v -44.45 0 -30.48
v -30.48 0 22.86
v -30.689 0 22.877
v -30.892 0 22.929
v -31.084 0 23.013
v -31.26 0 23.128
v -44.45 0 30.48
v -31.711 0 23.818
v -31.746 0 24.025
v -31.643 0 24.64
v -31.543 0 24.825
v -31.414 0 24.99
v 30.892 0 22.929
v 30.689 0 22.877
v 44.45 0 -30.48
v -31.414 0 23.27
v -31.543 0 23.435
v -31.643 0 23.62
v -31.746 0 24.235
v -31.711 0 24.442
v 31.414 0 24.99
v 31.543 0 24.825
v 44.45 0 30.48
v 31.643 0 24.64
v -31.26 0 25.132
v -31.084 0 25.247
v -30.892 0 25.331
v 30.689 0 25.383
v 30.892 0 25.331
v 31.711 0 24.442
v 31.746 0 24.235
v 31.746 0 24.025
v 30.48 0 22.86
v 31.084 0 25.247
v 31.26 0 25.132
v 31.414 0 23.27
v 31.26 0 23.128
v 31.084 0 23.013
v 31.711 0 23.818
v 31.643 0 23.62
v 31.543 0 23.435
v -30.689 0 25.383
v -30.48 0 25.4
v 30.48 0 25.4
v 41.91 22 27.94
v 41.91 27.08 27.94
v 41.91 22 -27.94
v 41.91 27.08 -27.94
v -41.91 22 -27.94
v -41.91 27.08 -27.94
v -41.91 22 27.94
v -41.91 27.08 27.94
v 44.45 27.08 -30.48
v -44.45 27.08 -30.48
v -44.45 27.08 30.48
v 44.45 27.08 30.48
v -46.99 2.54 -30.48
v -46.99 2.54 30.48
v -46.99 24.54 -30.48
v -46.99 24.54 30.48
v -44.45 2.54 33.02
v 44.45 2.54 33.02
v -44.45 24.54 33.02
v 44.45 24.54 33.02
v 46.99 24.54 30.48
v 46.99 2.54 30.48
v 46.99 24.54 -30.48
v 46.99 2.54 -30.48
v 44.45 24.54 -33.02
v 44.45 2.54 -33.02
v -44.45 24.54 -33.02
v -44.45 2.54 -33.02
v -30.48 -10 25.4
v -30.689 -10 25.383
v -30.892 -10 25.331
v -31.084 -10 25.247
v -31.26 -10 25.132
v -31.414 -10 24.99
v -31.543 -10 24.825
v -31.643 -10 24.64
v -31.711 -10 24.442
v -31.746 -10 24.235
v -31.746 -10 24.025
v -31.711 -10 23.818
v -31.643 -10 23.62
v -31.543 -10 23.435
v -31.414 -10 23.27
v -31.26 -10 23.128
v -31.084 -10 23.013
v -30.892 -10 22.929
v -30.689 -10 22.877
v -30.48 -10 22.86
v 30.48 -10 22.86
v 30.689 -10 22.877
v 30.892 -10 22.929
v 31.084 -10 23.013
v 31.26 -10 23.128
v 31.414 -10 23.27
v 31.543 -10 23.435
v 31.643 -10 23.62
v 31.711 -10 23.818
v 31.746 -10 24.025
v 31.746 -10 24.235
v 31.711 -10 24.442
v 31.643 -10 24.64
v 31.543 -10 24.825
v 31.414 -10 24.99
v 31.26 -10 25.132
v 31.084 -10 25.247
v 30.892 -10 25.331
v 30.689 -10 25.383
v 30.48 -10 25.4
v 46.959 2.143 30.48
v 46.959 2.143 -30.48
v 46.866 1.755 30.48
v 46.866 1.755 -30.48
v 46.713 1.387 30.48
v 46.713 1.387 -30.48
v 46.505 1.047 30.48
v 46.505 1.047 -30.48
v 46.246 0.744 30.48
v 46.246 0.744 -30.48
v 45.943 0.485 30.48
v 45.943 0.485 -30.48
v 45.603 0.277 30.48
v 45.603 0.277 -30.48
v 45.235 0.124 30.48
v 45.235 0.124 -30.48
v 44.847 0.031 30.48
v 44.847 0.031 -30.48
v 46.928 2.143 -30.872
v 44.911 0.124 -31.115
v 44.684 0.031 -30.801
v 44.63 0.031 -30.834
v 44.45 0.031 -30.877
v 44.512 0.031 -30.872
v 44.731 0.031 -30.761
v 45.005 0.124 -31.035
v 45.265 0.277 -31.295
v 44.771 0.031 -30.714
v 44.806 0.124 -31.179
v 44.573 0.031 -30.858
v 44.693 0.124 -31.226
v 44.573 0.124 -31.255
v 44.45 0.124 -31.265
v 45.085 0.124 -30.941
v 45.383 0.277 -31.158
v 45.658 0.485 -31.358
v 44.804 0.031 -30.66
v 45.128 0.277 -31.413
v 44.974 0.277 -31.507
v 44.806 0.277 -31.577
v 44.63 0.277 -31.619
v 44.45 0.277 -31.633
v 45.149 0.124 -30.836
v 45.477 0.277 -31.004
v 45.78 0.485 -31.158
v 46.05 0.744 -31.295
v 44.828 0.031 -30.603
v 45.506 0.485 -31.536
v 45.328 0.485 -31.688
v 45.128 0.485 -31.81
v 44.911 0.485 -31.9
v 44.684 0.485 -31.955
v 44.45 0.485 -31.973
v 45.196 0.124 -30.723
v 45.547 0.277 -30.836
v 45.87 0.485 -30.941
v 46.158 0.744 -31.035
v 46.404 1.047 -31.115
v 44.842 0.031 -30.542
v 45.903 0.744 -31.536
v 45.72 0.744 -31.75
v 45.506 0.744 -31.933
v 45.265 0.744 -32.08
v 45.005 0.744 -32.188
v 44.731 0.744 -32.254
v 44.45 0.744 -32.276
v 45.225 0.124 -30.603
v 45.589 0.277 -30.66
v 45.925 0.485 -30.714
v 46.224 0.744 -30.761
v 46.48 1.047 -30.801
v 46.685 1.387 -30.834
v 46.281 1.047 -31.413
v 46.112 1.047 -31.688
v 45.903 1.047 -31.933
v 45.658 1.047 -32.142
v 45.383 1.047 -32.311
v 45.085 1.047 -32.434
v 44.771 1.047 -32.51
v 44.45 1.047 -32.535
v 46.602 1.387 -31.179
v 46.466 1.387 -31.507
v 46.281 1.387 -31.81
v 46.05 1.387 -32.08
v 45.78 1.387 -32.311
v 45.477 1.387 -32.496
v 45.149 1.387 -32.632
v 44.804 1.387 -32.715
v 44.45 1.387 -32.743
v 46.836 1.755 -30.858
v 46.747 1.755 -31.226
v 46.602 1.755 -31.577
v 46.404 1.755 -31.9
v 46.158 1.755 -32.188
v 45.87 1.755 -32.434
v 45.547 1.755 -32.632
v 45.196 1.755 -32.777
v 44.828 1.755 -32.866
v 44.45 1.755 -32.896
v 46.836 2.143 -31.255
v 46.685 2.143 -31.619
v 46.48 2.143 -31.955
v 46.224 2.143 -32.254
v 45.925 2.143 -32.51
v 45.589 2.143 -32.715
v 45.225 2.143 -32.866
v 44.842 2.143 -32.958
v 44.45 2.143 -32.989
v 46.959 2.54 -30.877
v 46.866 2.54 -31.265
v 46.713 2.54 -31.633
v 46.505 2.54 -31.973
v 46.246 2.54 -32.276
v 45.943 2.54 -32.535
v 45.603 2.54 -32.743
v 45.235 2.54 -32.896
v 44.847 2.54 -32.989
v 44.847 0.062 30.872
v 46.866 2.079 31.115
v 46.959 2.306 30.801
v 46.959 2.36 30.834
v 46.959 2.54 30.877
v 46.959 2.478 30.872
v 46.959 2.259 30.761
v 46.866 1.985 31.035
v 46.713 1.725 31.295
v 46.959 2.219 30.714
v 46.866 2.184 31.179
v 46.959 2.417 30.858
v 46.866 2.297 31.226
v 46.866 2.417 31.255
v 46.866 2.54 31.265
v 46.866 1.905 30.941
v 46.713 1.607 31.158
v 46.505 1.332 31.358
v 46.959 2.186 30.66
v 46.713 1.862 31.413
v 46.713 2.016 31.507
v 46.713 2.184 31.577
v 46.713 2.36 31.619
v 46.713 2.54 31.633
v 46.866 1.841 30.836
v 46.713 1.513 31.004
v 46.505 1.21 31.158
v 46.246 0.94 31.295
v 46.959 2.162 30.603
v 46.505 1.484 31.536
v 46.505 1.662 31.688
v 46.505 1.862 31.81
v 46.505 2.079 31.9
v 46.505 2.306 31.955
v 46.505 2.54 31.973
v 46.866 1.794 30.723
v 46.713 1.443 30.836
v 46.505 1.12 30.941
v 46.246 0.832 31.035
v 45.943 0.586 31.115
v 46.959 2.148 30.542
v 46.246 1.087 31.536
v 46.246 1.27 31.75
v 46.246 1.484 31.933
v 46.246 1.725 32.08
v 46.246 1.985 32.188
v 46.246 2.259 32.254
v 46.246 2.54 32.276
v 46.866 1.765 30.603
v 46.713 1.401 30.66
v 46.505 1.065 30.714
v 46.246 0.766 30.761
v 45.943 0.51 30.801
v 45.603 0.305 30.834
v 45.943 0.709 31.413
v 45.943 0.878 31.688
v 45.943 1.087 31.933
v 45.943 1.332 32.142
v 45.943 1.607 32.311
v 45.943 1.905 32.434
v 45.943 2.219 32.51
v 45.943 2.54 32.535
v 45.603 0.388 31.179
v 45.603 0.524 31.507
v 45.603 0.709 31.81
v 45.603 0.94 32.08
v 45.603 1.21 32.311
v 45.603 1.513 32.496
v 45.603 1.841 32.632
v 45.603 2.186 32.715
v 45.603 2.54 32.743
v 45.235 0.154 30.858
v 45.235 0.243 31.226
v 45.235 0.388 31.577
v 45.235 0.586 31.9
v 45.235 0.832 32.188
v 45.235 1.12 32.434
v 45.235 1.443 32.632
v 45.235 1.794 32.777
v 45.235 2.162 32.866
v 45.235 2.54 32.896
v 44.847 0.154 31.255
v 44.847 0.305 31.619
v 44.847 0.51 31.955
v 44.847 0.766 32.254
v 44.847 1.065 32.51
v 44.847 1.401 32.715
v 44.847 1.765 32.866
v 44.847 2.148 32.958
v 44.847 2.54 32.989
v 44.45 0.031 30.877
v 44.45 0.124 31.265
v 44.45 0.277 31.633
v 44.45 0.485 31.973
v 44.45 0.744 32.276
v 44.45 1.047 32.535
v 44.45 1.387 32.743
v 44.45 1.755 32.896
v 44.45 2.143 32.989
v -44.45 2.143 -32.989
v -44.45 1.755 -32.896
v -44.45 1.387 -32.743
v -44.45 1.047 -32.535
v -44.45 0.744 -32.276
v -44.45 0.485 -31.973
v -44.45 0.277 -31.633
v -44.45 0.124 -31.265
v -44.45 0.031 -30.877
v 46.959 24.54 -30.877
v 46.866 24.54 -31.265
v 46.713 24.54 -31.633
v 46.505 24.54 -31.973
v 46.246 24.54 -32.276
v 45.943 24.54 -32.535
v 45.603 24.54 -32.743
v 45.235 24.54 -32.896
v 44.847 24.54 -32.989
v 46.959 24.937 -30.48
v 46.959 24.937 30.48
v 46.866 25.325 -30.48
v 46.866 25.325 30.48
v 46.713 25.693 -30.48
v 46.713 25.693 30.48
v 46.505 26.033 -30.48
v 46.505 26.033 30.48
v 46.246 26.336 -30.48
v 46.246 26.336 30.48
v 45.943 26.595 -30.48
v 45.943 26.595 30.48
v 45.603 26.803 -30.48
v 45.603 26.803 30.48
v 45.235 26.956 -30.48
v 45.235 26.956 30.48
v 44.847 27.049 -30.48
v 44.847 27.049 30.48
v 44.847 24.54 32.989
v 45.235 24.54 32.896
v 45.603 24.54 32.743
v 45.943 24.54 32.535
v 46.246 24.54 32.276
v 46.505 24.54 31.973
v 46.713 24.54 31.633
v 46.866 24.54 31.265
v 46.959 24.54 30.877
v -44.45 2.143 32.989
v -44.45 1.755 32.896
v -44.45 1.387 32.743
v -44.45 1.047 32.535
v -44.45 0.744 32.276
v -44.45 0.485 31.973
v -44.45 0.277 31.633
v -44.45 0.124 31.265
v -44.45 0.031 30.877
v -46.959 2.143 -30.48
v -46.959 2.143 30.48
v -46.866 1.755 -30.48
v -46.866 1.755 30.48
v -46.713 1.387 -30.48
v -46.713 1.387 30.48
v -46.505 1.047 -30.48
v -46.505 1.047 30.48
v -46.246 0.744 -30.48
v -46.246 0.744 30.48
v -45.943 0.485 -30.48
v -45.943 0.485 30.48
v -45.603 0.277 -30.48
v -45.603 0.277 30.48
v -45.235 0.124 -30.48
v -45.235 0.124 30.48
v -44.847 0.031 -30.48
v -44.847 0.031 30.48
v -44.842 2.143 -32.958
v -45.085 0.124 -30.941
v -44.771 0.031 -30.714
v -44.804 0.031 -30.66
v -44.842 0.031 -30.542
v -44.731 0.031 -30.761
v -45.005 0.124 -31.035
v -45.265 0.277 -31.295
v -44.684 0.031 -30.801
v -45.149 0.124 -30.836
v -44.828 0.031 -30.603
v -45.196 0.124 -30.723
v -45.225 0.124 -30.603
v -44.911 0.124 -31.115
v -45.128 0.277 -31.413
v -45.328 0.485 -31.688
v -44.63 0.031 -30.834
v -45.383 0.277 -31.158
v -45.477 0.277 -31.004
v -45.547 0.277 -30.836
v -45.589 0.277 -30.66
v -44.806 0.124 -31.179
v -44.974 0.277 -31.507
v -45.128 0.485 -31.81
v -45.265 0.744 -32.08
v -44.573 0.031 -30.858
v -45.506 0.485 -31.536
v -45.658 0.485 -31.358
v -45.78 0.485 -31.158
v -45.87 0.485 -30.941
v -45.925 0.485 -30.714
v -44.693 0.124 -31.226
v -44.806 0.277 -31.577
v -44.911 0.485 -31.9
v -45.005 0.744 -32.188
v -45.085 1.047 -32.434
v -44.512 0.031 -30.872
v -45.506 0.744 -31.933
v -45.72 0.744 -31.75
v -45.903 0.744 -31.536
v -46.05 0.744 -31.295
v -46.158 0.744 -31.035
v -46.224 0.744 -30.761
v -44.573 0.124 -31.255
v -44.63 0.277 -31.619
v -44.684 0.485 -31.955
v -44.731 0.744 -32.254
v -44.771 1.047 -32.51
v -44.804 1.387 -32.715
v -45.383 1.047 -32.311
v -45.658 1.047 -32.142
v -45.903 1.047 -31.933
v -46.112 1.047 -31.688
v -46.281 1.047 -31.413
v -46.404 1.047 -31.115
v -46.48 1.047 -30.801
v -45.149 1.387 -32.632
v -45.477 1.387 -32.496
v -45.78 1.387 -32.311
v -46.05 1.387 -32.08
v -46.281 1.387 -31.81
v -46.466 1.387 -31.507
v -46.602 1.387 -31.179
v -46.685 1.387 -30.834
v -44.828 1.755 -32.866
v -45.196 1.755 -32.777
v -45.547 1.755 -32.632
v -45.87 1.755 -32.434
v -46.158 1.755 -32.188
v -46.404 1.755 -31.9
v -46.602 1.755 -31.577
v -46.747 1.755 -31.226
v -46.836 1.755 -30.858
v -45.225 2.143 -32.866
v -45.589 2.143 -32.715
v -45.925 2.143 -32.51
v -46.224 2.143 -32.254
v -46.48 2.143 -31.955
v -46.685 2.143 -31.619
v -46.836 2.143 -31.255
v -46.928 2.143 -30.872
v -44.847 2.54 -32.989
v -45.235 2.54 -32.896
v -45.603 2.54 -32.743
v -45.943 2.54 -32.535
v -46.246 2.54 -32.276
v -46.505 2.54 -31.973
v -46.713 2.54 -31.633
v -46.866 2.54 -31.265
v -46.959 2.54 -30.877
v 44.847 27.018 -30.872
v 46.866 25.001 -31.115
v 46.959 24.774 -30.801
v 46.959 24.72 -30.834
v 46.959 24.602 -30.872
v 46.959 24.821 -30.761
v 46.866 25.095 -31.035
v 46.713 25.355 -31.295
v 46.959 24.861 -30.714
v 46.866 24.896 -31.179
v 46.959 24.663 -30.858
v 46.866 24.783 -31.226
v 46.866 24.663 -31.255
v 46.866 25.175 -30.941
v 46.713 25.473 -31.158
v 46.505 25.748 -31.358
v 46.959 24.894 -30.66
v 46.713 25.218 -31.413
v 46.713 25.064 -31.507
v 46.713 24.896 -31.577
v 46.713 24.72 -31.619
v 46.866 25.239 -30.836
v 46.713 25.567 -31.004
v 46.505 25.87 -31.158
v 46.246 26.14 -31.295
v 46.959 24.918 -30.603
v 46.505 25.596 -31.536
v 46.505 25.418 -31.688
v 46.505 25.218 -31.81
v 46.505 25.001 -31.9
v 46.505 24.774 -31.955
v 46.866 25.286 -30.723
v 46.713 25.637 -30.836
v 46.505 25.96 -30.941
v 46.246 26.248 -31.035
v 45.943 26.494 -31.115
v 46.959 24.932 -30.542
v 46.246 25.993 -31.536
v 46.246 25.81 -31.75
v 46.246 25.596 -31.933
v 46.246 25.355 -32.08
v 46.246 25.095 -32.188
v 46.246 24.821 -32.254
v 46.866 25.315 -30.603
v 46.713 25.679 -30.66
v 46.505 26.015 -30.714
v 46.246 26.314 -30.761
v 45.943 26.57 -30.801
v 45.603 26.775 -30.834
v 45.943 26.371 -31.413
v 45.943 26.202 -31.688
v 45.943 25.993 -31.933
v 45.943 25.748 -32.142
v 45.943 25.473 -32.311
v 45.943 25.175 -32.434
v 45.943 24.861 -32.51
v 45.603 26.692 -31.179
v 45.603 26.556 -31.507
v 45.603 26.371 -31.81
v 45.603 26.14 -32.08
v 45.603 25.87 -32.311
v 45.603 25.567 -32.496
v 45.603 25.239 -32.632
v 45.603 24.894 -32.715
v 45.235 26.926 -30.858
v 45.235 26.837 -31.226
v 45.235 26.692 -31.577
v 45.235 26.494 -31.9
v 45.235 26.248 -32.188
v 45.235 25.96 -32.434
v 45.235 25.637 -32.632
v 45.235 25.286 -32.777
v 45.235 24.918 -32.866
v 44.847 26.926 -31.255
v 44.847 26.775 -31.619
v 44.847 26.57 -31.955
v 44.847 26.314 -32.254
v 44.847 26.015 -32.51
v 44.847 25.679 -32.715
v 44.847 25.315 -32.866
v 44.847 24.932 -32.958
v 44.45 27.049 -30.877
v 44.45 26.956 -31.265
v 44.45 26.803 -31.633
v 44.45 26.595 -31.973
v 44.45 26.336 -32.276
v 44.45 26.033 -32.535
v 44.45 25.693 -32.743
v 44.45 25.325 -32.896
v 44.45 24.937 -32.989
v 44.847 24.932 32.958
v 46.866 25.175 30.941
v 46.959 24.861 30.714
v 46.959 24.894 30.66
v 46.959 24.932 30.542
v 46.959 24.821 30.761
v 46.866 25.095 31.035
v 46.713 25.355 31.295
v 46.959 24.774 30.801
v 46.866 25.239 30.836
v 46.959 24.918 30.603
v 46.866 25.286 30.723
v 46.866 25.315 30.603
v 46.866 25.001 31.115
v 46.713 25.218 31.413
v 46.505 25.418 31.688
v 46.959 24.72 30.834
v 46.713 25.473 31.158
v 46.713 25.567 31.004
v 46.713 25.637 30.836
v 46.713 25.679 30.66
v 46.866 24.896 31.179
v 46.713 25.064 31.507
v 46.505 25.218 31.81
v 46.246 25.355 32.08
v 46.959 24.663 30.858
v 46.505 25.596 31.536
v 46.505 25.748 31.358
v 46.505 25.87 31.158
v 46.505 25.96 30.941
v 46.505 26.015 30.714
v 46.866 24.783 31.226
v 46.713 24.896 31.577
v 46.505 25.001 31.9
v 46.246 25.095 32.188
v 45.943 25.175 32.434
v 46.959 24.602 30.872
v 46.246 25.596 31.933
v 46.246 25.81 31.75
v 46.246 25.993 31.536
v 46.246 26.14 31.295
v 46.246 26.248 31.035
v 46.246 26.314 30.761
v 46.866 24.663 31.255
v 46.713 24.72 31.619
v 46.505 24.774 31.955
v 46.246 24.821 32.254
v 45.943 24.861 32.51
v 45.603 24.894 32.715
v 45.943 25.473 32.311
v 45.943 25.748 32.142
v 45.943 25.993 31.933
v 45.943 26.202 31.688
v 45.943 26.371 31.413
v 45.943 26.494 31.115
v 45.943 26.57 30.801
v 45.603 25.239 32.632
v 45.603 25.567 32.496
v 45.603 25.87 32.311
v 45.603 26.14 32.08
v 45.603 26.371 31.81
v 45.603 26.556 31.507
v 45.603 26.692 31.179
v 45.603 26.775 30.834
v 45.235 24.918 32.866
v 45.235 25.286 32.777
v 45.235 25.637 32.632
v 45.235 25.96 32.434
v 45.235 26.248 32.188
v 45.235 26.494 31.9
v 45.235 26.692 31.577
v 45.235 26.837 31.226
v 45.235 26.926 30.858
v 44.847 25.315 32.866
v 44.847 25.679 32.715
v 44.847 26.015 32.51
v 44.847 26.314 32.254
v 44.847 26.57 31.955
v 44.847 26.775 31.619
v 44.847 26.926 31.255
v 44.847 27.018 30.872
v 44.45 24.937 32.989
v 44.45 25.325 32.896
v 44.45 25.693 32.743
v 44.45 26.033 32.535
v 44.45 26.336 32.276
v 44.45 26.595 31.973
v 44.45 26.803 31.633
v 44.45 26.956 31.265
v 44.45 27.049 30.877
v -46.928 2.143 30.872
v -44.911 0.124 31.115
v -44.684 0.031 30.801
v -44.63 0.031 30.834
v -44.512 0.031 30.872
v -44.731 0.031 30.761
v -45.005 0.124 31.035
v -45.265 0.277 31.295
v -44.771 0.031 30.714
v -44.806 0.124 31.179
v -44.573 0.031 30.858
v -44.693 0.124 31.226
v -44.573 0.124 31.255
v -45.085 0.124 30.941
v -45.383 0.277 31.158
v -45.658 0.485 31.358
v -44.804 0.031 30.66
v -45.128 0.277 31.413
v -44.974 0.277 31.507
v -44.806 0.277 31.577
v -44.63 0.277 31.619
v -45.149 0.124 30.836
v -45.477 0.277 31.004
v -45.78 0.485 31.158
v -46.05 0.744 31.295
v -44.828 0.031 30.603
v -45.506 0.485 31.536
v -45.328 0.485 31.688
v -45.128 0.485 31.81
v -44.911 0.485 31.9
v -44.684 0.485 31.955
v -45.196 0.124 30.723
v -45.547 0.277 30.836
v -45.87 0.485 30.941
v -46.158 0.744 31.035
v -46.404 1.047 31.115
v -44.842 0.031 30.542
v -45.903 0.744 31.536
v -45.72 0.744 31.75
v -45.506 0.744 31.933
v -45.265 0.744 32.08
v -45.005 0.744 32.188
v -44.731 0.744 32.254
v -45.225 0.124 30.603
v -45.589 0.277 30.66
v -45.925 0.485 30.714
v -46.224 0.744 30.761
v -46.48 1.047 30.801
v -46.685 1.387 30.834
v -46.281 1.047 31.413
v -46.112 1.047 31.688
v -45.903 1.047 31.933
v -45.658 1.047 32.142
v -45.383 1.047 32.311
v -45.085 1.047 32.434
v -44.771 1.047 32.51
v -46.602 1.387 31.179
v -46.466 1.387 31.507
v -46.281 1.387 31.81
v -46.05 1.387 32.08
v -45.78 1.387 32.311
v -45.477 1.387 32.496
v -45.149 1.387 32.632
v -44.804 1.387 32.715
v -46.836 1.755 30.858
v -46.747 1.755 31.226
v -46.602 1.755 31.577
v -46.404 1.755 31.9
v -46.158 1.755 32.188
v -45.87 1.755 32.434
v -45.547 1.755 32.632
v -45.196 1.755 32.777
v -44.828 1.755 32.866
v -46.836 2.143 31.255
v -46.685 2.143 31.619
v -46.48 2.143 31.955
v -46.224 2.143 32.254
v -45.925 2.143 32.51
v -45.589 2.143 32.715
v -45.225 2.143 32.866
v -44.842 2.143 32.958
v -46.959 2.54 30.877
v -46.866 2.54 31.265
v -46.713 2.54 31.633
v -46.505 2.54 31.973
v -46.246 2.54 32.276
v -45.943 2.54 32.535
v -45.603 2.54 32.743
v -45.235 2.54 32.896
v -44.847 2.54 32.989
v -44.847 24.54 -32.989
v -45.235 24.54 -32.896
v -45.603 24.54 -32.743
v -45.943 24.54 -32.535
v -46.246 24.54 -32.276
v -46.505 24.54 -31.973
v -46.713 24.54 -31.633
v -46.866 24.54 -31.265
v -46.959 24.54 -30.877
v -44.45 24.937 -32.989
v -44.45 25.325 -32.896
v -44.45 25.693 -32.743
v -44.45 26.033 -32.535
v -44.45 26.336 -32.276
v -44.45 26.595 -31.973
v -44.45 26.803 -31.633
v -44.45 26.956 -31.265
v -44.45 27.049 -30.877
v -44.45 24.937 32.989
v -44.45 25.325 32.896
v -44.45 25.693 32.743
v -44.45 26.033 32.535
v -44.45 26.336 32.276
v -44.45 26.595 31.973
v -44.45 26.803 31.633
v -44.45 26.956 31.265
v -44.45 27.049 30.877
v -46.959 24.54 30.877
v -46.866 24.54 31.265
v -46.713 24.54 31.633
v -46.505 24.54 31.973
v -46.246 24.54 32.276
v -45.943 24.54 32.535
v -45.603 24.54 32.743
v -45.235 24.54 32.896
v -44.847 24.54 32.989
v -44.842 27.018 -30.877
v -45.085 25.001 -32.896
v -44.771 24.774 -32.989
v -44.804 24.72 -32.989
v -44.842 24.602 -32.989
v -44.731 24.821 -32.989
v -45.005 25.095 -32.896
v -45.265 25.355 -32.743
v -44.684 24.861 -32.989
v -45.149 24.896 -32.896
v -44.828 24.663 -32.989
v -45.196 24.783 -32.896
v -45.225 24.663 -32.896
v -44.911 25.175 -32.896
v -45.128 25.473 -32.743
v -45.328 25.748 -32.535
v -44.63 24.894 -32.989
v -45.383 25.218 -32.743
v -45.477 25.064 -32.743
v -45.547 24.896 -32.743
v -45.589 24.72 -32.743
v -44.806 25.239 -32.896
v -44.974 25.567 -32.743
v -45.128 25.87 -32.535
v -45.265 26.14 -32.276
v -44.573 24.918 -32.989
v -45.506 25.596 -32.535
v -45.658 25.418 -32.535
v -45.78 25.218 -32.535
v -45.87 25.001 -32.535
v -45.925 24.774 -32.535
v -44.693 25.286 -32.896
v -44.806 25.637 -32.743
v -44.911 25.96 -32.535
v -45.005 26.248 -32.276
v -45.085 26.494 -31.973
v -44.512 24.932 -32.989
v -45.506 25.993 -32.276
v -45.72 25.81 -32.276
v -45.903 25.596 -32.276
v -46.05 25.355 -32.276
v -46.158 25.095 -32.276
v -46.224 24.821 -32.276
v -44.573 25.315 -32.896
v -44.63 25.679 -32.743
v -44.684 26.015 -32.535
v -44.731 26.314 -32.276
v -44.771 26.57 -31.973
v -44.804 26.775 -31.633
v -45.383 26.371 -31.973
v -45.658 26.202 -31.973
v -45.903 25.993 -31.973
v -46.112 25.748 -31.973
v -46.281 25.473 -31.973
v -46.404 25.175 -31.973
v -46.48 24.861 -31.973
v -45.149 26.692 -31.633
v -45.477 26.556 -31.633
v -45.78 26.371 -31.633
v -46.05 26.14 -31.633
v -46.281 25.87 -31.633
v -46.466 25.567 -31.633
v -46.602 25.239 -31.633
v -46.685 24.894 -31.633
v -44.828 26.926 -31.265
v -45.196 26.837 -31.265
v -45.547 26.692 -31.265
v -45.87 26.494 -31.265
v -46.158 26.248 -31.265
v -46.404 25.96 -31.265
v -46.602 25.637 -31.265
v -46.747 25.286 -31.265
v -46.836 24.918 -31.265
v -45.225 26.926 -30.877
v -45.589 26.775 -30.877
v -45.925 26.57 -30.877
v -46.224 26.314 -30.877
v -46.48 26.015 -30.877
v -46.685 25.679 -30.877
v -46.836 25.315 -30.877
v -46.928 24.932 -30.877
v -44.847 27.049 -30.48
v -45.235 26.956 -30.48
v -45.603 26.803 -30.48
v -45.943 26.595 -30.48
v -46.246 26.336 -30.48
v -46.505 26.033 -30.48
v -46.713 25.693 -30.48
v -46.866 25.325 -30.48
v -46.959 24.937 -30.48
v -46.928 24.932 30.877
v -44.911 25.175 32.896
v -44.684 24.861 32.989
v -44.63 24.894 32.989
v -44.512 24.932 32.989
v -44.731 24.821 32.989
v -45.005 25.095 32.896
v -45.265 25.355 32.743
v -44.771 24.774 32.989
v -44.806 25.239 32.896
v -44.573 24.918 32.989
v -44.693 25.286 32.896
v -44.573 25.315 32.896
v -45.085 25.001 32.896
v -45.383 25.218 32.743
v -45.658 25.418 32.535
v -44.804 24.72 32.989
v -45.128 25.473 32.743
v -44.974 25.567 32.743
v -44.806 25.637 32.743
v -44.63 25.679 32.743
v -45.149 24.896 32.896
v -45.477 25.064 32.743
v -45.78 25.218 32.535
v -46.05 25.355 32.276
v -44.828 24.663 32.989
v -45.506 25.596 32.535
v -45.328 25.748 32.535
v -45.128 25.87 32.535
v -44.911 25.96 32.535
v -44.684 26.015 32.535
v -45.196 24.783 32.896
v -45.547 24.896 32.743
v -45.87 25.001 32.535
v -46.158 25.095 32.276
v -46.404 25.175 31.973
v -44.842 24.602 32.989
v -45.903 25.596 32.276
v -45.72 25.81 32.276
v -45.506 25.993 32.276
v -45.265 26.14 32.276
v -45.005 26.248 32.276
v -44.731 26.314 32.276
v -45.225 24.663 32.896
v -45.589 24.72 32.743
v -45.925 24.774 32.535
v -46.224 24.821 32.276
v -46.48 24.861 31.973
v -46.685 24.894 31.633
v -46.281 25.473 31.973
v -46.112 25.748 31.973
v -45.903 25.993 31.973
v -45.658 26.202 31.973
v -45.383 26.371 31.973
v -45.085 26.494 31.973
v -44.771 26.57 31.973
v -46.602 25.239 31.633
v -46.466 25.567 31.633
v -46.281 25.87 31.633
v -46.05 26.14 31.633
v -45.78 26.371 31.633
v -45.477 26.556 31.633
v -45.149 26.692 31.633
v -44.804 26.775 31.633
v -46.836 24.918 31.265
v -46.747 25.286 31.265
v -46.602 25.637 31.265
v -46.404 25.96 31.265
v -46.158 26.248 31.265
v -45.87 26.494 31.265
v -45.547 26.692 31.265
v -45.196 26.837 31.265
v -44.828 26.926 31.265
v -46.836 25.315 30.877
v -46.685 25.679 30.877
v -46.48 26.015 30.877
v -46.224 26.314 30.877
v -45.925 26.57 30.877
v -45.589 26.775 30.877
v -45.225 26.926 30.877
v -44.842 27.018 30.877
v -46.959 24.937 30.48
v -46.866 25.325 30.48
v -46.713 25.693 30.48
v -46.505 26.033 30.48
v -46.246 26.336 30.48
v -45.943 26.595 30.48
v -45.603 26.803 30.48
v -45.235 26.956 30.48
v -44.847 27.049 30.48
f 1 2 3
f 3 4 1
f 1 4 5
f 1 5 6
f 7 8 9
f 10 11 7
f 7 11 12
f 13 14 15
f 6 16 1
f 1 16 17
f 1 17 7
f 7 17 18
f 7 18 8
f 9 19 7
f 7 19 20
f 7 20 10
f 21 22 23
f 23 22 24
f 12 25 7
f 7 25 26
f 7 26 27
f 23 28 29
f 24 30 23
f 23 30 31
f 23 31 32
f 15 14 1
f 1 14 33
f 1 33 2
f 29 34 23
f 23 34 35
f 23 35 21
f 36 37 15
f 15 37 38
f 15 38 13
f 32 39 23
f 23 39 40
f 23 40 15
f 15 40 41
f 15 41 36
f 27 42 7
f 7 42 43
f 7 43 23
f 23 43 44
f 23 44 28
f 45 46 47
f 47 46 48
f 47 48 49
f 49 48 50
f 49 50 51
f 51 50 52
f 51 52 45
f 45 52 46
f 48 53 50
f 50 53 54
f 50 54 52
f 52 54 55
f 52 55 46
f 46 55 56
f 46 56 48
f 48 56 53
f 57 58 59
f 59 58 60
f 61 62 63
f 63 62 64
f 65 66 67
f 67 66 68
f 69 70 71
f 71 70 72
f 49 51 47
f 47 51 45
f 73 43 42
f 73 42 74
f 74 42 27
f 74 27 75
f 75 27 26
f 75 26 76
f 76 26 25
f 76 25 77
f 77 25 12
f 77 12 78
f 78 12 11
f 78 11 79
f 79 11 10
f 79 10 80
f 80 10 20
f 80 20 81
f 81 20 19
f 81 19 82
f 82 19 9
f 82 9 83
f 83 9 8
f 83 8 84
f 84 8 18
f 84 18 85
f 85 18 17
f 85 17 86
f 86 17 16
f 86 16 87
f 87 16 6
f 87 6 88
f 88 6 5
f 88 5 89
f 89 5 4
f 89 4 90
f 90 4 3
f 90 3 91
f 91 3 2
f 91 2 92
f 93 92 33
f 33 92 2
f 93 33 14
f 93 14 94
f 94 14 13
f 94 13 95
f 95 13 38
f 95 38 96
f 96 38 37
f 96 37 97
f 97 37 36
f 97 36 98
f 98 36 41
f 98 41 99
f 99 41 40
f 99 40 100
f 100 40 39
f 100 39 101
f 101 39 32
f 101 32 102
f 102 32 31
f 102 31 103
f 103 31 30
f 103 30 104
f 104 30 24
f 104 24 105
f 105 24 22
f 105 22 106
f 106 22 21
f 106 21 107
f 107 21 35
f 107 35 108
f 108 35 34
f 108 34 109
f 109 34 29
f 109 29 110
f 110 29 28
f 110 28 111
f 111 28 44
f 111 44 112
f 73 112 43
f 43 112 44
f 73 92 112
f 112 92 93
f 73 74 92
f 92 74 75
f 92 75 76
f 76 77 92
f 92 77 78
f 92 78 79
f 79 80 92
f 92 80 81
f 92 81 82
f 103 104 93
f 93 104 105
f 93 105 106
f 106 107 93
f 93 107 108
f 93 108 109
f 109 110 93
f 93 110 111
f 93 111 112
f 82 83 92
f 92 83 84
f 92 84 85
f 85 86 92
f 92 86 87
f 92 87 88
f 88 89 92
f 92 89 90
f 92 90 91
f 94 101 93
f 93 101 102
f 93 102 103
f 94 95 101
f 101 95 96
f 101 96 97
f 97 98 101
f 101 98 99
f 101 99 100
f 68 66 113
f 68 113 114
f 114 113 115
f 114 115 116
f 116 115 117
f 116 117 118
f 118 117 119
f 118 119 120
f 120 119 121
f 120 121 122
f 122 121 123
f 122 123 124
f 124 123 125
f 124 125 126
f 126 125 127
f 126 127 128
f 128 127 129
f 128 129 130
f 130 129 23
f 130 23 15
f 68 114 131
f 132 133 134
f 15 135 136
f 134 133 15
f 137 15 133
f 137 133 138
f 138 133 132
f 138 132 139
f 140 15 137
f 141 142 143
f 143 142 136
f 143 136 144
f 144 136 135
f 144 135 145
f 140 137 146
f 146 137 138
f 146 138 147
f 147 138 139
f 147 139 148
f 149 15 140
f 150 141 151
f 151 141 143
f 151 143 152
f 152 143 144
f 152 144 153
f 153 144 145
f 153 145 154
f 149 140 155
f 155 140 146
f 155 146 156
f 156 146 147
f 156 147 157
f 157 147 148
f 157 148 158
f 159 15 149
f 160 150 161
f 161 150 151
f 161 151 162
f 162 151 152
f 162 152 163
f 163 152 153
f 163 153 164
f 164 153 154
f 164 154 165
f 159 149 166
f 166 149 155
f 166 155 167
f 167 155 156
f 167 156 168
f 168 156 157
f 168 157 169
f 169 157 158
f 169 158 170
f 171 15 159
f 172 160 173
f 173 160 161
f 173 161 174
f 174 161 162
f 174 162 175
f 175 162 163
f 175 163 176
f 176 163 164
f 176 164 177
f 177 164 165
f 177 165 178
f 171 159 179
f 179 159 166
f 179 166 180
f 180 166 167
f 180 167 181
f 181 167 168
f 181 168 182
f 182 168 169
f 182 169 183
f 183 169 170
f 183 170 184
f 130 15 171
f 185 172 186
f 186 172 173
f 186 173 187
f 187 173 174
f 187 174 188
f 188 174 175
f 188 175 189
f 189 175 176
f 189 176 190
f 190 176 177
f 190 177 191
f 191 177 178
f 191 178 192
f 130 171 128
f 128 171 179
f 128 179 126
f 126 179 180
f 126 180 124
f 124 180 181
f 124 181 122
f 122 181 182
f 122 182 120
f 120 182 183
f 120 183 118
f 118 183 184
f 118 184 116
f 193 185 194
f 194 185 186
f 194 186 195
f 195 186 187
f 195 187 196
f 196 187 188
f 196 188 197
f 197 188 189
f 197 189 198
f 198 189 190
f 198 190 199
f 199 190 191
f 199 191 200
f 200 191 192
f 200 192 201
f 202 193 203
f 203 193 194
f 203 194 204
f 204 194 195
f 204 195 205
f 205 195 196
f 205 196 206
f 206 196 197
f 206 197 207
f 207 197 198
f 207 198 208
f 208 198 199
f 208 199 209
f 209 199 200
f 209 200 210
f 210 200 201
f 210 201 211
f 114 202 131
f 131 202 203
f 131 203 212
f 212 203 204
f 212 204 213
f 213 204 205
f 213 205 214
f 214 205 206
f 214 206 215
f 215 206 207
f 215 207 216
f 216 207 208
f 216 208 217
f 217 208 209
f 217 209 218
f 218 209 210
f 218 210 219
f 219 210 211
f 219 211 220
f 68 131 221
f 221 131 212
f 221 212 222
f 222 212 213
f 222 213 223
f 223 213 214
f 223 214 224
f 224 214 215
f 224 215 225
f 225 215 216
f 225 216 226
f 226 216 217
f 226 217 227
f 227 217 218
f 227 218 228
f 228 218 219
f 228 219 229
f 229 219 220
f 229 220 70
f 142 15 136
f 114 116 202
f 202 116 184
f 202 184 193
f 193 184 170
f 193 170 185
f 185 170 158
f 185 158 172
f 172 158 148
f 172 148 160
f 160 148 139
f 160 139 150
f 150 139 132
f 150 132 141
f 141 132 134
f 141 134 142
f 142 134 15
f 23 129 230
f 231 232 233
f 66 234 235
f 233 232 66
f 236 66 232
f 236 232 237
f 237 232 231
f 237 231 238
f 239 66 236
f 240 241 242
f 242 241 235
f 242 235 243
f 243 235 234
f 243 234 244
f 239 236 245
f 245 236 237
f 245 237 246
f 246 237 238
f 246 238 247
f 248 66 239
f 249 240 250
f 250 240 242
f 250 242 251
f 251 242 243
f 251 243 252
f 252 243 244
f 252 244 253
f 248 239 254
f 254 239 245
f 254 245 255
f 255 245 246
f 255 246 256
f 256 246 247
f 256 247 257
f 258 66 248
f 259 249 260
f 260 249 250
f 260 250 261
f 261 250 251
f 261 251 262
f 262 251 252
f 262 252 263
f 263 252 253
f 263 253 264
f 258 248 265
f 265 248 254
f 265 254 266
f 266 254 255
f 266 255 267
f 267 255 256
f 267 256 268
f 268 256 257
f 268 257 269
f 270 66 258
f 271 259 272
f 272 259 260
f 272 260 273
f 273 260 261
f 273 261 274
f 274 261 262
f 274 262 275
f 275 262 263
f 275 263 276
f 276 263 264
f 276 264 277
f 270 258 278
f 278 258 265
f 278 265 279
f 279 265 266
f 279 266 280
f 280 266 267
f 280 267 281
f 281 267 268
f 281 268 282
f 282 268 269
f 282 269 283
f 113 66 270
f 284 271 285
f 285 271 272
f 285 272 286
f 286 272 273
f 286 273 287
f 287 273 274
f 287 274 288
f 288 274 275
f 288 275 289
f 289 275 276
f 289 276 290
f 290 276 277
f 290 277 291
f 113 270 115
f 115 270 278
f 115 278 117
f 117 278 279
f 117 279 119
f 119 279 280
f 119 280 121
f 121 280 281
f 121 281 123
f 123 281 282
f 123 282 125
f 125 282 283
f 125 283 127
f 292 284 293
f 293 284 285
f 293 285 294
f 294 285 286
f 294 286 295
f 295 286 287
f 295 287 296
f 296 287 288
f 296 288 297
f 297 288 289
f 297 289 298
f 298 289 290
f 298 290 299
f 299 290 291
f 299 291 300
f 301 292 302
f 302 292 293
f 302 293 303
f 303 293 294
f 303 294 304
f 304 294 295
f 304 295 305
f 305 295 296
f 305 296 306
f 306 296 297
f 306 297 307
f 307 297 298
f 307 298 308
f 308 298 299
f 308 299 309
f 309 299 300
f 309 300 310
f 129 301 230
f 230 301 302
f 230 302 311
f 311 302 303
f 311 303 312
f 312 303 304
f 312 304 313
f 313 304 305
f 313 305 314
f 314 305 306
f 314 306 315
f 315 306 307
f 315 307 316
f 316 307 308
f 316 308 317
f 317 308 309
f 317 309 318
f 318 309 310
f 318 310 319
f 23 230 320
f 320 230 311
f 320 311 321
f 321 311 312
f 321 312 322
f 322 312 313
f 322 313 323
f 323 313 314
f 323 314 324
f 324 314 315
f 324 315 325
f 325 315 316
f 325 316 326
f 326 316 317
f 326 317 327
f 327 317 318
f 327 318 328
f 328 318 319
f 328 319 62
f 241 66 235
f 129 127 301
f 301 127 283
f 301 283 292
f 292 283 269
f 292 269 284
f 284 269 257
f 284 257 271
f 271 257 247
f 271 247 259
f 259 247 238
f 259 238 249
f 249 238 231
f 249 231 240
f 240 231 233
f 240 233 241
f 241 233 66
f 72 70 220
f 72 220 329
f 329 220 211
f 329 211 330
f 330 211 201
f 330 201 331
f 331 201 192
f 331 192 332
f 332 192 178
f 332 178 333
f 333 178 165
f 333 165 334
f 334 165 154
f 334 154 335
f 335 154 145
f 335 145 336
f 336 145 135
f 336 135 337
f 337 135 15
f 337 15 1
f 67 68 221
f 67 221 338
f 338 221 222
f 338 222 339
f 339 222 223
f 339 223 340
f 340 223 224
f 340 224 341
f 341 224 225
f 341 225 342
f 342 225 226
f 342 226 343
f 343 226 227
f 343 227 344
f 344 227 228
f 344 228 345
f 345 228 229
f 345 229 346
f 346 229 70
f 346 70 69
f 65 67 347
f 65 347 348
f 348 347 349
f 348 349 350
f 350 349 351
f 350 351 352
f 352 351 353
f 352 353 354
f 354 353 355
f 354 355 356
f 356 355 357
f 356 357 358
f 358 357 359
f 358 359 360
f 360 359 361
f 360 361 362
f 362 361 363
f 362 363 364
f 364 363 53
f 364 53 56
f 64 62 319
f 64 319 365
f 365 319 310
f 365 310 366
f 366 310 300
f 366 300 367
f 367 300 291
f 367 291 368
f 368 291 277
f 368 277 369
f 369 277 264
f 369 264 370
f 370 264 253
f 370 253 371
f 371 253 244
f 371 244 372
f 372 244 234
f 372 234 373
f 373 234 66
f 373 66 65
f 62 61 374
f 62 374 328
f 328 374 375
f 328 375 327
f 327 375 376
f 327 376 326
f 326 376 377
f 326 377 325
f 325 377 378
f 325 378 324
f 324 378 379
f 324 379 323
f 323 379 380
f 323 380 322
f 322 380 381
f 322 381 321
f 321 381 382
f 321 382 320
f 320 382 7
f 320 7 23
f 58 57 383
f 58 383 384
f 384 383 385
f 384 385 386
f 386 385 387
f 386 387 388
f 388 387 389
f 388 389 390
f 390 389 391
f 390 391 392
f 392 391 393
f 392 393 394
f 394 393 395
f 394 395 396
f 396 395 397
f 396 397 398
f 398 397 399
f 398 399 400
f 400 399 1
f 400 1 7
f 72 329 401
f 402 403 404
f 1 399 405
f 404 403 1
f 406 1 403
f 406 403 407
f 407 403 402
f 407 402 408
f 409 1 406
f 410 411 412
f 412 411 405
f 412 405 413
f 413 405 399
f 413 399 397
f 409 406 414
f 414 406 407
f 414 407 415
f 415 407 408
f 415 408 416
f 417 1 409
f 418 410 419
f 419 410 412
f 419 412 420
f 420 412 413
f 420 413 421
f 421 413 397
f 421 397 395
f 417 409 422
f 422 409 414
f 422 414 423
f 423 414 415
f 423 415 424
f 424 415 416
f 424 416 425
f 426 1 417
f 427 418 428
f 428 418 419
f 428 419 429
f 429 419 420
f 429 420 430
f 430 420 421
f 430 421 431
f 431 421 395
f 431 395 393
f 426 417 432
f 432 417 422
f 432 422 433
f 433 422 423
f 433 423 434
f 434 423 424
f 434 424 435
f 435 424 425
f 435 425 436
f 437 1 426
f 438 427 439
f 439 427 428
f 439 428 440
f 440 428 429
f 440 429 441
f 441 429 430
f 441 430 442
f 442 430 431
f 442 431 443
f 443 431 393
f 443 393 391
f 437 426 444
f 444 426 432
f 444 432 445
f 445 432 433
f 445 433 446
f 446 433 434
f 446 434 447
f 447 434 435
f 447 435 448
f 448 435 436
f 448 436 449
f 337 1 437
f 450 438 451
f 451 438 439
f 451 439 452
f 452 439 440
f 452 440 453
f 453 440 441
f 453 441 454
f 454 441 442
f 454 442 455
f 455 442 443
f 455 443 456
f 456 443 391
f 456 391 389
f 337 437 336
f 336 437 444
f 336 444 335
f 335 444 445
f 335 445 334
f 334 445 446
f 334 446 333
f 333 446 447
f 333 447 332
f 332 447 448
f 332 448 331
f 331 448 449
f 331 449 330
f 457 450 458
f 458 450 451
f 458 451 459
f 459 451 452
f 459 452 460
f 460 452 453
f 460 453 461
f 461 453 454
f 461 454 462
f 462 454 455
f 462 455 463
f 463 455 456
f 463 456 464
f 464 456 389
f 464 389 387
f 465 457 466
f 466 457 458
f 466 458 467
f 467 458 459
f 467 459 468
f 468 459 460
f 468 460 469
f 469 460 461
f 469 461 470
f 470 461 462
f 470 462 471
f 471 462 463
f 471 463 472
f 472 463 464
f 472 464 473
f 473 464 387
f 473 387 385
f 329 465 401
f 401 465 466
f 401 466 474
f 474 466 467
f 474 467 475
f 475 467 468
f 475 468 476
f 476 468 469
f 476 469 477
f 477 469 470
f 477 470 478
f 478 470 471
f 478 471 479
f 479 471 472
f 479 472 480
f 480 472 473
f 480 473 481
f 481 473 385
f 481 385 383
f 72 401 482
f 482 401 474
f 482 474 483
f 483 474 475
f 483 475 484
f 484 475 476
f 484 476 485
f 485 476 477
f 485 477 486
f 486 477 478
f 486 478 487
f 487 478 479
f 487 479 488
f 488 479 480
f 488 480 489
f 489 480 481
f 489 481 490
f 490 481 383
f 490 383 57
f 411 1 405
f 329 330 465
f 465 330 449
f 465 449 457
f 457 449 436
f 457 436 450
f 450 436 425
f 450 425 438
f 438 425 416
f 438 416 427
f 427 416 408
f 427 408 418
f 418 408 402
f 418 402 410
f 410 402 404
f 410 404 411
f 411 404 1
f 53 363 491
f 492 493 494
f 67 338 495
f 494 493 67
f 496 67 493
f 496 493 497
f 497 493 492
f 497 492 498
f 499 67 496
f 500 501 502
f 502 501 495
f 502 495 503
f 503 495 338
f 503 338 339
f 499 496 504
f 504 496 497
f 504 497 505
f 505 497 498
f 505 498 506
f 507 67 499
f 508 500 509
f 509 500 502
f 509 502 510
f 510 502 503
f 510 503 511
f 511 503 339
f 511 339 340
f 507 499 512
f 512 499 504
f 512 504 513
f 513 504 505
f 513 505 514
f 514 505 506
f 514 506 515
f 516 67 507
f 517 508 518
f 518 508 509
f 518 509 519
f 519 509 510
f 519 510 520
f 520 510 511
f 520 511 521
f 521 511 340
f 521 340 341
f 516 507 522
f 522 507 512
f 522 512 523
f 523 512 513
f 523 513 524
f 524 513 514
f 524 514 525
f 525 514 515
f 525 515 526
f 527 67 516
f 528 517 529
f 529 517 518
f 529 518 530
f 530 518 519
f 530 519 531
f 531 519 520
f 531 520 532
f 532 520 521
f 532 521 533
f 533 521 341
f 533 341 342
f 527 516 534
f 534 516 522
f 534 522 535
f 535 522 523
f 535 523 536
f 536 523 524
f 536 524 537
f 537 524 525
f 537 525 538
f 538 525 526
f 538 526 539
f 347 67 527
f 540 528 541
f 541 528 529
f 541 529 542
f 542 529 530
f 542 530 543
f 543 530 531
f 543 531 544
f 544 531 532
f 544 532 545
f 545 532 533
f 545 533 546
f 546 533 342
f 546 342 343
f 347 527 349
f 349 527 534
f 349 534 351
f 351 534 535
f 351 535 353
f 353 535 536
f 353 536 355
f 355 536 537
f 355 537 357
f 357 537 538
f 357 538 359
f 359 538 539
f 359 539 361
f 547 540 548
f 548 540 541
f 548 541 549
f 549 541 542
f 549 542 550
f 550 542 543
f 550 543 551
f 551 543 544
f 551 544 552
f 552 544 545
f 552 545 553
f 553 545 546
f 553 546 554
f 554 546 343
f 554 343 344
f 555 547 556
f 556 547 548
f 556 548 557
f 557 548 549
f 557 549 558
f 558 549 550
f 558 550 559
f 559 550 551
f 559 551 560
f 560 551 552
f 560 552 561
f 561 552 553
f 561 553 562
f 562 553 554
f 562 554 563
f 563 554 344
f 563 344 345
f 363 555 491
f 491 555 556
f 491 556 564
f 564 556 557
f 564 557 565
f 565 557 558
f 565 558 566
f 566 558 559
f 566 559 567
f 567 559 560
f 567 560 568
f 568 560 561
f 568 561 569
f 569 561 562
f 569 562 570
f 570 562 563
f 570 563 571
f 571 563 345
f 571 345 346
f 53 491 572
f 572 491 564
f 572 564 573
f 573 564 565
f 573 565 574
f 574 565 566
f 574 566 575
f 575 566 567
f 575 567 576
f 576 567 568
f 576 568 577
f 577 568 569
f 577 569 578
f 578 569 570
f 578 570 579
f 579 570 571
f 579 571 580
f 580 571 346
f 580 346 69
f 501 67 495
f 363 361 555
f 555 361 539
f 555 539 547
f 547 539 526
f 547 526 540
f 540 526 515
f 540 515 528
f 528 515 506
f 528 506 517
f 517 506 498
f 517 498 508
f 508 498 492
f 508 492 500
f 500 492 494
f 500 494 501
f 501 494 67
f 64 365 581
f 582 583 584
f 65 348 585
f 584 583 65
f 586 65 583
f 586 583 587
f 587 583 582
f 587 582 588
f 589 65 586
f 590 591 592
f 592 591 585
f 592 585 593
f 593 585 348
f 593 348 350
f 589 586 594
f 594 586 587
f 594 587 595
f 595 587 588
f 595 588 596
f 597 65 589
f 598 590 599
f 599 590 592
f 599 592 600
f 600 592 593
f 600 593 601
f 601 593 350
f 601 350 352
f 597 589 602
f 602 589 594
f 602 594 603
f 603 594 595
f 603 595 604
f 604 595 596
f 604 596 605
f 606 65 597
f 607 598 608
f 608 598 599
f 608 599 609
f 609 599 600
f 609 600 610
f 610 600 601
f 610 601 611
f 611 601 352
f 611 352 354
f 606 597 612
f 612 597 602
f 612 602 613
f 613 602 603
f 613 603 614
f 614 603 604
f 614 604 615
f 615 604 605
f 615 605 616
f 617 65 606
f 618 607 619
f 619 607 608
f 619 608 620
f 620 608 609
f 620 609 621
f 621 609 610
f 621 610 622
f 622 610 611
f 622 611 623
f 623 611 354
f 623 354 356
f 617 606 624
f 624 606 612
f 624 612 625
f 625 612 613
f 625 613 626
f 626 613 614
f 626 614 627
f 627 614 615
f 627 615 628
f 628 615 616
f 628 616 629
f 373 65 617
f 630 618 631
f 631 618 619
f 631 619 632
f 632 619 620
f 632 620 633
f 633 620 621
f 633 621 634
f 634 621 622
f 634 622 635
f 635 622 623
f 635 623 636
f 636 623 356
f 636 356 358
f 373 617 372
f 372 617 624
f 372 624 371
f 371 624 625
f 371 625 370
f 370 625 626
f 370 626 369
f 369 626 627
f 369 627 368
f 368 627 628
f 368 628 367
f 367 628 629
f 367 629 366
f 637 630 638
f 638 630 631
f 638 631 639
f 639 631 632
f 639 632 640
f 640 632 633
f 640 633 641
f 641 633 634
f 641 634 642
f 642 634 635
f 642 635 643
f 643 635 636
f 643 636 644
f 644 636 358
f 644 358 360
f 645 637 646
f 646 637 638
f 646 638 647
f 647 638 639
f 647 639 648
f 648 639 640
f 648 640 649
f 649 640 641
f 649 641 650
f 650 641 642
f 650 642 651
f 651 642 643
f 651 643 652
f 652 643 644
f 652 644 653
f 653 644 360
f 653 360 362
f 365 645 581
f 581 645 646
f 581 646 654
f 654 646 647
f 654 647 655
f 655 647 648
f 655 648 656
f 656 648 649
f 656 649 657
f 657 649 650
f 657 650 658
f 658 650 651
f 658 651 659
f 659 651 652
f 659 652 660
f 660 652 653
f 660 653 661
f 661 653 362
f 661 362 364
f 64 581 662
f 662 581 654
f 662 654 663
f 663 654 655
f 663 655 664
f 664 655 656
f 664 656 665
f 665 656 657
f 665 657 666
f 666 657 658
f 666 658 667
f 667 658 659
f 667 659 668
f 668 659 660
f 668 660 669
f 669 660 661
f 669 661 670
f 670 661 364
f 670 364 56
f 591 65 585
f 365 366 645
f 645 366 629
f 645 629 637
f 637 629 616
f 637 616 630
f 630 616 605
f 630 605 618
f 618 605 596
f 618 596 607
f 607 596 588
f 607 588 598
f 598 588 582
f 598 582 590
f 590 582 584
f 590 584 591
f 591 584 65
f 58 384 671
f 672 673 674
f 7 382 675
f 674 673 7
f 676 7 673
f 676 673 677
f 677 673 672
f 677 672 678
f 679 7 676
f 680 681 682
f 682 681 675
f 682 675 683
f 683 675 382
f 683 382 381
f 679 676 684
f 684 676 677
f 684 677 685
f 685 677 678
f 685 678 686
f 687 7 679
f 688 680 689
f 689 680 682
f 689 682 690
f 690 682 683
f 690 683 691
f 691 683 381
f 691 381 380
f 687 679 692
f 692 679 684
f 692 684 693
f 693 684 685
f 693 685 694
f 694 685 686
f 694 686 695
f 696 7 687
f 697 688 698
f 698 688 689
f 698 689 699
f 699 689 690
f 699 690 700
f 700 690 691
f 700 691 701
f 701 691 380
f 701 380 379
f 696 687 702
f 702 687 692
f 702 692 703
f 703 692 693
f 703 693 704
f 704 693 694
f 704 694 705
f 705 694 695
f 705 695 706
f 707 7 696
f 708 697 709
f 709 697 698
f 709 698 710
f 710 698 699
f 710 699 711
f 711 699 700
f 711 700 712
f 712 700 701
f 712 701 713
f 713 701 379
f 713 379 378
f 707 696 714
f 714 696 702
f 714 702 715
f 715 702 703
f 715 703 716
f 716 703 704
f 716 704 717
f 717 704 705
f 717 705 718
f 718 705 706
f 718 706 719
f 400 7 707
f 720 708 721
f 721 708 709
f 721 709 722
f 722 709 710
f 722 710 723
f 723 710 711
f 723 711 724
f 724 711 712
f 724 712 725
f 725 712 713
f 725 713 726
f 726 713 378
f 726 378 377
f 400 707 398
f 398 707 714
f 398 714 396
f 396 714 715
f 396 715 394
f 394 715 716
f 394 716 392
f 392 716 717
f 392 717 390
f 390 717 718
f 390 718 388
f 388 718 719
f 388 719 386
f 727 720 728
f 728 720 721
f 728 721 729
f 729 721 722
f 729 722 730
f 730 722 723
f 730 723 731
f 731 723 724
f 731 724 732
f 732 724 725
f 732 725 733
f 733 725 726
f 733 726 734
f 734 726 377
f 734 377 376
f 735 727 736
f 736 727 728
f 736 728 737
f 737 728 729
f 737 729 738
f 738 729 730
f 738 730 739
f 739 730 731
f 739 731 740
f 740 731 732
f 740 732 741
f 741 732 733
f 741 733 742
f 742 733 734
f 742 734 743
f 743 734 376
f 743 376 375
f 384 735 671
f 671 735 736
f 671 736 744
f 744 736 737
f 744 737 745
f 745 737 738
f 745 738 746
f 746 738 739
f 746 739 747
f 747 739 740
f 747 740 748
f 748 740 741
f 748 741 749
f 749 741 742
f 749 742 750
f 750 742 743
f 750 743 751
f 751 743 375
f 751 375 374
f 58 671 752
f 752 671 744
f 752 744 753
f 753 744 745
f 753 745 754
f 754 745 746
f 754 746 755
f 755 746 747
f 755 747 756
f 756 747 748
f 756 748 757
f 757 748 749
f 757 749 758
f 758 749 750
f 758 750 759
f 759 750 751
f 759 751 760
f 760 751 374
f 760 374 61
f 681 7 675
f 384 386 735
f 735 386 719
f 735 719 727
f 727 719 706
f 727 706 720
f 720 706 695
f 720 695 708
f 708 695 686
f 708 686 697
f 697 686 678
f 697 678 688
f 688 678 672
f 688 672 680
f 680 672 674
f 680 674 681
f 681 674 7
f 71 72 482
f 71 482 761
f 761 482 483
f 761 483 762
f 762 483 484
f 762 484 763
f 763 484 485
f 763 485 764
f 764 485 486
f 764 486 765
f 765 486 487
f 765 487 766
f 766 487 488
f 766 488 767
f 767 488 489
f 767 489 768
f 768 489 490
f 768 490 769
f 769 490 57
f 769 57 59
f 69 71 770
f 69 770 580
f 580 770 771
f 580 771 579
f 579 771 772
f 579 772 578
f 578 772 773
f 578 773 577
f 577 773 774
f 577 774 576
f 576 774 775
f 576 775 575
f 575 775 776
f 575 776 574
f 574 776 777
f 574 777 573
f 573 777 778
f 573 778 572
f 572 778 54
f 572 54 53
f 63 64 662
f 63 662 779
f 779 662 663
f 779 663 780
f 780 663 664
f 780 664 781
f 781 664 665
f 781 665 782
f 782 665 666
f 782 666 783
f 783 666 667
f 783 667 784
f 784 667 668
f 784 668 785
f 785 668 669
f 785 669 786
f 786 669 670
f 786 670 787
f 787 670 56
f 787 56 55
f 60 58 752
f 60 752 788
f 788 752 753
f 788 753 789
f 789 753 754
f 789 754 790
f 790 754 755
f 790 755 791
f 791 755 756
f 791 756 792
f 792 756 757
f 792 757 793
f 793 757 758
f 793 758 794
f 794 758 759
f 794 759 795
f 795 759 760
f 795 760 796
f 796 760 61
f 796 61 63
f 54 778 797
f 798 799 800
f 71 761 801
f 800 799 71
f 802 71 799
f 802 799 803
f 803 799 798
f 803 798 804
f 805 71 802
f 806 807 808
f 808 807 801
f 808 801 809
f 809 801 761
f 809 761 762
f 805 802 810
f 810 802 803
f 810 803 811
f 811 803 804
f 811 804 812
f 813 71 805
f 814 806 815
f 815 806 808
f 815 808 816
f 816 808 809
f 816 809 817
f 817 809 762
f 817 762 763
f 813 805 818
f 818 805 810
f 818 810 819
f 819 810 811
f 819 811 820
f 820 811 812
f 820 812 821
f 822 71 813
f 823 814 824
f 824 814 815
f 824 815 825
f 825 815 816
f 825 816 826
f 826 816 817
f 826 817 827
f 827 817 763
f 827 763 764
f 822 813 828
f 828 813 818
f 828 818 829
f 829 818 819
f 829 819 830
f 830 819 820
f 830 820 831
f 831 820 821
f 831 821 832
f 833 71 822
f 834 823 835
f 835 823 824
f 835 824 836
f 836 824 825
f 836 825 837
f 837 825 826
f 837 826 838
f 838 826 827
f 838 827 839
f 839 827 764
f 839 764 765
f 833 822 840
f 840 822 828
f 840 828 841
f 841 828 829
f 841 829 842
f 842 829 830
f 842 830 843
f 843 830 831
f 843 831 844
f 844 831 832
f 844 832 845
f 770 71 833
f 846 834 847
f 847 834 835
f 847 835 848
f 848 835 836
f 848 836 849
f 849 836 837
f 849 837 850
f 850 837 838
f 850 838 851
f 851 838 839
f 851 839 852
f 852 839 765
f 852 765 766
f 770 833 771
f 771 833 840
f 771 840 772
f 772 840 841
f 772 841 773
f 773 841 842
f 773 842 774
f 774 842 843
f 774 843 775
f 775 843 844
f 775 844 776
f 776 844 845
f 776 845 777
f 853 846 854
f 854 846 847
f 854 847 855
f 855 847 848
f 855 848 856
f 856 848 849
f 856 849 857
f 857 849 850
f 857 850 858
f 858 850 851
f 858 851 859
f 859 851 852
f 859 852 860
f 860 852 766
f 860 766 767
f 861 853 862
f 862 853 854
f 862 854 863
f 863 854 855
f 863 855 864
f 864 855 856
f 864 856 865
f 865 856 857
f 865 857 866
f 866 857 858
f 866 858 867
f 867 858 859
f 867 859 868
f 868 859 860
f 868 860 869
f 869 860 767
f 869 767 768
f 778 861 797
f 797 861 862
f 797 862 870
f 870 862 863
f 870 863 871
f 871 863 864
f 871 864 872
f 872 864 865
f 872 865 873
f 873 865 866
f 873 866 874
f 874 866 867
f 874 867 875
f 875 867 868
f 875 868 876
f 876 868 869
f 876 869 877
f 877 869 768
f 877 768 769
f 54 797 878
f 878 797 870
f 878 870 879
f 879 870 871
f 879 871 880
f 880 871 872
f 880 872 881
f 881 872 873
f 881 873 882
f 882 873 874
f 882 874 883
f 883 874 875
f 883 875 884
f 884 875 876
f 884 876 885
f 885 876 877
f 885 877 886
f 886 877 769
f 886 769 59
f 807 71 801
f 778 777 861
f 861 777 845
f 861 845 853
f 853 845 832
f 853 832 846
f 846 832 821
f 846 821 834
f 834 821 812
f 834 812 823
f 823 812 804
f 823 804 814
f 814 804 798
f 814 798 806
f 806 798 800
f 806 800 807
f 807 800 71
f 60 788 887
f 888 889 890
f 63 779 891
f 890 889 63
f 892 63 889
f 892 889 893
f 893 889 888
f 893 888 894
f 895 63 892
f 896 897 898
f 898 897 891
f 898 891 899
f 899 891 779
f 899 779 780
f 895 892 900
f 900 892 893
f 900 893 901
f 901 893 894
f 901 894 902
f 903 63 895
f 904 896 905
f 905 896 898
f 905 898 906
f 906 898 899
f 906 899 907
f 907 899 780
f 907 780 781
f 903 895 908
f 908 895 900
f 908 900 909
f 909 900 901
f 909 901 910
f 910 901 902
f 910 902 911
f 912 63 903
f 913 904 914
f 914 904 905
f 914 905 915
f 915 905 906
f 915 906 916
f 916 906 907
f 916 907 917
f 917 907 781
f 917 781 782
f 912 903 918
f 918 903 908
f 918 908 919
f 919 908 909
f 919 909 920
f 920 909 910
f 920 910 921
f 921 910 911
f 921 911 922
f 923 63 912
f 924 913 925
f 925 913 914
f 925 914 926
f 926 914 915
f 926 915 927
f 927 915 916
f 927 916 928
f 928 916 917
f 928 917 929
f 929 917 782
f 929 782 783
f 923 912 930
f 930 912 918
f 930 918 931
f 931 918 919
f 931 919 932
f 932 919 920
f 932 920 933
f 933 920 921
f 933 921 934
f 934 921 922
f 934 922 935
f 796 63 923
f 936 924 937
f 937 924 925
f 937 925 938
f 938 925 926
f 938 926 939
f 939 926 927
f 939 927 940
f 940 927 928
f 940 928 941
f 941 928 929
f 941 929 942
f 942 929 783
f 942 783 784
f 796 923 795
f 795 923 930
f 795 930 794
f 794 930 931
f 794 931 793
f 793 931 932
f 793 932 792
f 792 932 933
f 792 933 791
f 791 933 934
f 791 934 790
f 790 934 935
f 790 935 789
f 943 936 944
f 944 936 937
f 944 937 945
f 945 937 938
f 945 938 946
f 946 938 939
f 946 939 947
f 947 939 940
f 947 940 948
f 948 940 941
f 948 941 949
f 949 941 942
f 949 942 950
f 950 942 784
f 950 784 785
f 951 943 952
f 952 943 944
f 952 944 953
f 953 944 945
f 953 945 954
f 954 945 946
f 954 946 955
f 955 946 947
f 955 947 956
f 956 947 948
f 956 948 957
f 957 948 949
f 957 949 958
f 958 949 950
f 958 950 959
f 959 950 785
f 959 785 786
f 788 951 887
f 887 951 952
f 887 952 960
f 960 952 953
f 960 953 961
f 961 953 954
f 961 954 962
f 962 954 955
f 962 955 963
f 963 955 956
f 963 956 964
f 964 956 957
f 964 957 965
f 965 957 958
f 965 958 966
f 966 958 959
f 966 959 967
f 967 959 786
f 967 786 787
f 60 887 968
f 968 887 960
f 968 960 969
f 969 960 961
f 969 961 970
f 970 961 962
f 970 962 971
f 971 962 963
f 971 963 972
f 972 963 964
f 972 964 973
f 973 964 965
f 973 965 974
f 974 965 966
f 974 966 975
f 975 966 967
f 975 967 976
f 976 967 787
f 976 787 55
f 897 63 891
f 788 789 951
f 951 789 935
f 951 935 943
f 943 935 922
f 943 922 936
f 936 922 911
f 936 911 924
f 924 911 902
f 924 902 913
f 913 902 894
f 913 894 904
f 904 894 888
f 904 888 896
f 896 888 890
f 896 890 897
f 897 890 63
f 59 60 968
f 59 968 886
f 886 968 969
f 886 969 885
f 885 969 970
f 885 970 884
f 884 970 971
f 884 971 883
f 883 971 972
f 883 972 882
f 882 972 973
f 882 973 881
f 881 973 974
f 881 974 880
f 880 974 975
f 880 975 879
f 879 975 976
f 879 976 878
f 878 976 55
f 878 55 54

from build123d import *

# Parameters (mm, degrees)
SKETCH1_W           = 93.98
SKETCH1_H           = 66.04
SKETCH1_W_2         = 83.82
SKETCH1_H_2         = 55.88
BOSS_EXTRUDE1_DEPTH = 27.08
SKETCH3_W           = 83.82
SKETCH3_H           = 55.88
BOSS_EXTRUDE2_DEPTH = 22
BOSS_EXTRUDE3_DEPTH = 10
FILLET1_R           = 2.54


with BuildPart() as part:
    # Sketch1 → Boss-Extrude1 (new body)
    with BuildSketch(Plane(origin=(0, 0, 0), x_dir=(1, 0, 0), z_dir=(0, 1, 0))):
        Rectangle(SKETCH1_W, SKETCH1_H)
        Rectangle(SKETCH1_W_2, SKETCH1_H_2, mode=Mode.SUBTRACT)
    extrude(amount=BOSS_EXTRUDE1_DEPTH)

    # Sketch3 → Boss-Extrude2 (add)
    with BuildSketch(Plane(origin=(0, 0, 0), x_dir=(1, 0, 0), z_dir=(0, 1, 0))):
        Rectangle(SKETCH3_W, SKETCH3_H)
    extrude(amount=BOSS_EXTRUDE2_DEPTH)

    # Sketch4 → Boss-Extrude3 (add)
    with BuildSketch(Plane.XZ):
        with BuildLine():
            Line((-30.48, 25.4), (30.48, 25.4))
            ThreePointArc((30.48, 25.4), (31.75, 24.13), (30.48, 22.86))
            Line((30.48, 22.86), (-30.48, 22.86))
            ThreePointArc((-30.48, 22.86), (-31.75, 24.13), (-30.48, 25.4))
        make_face()
    extrude(amount=BOSS_EXTRUDE3_DEPTH)

    # Fillet1
    fillet1_edges = [part.edges().sort_by_distance(p)[0] for p in [
        (46.99, 27.08, 0),
        (0, 27.08, -33.02),
        (-46.99, 27.08, 0),
        (0, 0, -33.02),
        (46.99, 0, 0),
        (0, 0, 33.02),
        (-46.99, 0, 0),
        (-46.99, 13.54, -33.02),
        (46.99, 13.54, -33.02),
        (46.99, 13.54, 33.02),
        (-46.99, 13.54, 33.02),
        (0, 27.08, 33.02),
    ]]
    fillet(fillet1_edges, radius=FILLET1_R)


solid = part.part
